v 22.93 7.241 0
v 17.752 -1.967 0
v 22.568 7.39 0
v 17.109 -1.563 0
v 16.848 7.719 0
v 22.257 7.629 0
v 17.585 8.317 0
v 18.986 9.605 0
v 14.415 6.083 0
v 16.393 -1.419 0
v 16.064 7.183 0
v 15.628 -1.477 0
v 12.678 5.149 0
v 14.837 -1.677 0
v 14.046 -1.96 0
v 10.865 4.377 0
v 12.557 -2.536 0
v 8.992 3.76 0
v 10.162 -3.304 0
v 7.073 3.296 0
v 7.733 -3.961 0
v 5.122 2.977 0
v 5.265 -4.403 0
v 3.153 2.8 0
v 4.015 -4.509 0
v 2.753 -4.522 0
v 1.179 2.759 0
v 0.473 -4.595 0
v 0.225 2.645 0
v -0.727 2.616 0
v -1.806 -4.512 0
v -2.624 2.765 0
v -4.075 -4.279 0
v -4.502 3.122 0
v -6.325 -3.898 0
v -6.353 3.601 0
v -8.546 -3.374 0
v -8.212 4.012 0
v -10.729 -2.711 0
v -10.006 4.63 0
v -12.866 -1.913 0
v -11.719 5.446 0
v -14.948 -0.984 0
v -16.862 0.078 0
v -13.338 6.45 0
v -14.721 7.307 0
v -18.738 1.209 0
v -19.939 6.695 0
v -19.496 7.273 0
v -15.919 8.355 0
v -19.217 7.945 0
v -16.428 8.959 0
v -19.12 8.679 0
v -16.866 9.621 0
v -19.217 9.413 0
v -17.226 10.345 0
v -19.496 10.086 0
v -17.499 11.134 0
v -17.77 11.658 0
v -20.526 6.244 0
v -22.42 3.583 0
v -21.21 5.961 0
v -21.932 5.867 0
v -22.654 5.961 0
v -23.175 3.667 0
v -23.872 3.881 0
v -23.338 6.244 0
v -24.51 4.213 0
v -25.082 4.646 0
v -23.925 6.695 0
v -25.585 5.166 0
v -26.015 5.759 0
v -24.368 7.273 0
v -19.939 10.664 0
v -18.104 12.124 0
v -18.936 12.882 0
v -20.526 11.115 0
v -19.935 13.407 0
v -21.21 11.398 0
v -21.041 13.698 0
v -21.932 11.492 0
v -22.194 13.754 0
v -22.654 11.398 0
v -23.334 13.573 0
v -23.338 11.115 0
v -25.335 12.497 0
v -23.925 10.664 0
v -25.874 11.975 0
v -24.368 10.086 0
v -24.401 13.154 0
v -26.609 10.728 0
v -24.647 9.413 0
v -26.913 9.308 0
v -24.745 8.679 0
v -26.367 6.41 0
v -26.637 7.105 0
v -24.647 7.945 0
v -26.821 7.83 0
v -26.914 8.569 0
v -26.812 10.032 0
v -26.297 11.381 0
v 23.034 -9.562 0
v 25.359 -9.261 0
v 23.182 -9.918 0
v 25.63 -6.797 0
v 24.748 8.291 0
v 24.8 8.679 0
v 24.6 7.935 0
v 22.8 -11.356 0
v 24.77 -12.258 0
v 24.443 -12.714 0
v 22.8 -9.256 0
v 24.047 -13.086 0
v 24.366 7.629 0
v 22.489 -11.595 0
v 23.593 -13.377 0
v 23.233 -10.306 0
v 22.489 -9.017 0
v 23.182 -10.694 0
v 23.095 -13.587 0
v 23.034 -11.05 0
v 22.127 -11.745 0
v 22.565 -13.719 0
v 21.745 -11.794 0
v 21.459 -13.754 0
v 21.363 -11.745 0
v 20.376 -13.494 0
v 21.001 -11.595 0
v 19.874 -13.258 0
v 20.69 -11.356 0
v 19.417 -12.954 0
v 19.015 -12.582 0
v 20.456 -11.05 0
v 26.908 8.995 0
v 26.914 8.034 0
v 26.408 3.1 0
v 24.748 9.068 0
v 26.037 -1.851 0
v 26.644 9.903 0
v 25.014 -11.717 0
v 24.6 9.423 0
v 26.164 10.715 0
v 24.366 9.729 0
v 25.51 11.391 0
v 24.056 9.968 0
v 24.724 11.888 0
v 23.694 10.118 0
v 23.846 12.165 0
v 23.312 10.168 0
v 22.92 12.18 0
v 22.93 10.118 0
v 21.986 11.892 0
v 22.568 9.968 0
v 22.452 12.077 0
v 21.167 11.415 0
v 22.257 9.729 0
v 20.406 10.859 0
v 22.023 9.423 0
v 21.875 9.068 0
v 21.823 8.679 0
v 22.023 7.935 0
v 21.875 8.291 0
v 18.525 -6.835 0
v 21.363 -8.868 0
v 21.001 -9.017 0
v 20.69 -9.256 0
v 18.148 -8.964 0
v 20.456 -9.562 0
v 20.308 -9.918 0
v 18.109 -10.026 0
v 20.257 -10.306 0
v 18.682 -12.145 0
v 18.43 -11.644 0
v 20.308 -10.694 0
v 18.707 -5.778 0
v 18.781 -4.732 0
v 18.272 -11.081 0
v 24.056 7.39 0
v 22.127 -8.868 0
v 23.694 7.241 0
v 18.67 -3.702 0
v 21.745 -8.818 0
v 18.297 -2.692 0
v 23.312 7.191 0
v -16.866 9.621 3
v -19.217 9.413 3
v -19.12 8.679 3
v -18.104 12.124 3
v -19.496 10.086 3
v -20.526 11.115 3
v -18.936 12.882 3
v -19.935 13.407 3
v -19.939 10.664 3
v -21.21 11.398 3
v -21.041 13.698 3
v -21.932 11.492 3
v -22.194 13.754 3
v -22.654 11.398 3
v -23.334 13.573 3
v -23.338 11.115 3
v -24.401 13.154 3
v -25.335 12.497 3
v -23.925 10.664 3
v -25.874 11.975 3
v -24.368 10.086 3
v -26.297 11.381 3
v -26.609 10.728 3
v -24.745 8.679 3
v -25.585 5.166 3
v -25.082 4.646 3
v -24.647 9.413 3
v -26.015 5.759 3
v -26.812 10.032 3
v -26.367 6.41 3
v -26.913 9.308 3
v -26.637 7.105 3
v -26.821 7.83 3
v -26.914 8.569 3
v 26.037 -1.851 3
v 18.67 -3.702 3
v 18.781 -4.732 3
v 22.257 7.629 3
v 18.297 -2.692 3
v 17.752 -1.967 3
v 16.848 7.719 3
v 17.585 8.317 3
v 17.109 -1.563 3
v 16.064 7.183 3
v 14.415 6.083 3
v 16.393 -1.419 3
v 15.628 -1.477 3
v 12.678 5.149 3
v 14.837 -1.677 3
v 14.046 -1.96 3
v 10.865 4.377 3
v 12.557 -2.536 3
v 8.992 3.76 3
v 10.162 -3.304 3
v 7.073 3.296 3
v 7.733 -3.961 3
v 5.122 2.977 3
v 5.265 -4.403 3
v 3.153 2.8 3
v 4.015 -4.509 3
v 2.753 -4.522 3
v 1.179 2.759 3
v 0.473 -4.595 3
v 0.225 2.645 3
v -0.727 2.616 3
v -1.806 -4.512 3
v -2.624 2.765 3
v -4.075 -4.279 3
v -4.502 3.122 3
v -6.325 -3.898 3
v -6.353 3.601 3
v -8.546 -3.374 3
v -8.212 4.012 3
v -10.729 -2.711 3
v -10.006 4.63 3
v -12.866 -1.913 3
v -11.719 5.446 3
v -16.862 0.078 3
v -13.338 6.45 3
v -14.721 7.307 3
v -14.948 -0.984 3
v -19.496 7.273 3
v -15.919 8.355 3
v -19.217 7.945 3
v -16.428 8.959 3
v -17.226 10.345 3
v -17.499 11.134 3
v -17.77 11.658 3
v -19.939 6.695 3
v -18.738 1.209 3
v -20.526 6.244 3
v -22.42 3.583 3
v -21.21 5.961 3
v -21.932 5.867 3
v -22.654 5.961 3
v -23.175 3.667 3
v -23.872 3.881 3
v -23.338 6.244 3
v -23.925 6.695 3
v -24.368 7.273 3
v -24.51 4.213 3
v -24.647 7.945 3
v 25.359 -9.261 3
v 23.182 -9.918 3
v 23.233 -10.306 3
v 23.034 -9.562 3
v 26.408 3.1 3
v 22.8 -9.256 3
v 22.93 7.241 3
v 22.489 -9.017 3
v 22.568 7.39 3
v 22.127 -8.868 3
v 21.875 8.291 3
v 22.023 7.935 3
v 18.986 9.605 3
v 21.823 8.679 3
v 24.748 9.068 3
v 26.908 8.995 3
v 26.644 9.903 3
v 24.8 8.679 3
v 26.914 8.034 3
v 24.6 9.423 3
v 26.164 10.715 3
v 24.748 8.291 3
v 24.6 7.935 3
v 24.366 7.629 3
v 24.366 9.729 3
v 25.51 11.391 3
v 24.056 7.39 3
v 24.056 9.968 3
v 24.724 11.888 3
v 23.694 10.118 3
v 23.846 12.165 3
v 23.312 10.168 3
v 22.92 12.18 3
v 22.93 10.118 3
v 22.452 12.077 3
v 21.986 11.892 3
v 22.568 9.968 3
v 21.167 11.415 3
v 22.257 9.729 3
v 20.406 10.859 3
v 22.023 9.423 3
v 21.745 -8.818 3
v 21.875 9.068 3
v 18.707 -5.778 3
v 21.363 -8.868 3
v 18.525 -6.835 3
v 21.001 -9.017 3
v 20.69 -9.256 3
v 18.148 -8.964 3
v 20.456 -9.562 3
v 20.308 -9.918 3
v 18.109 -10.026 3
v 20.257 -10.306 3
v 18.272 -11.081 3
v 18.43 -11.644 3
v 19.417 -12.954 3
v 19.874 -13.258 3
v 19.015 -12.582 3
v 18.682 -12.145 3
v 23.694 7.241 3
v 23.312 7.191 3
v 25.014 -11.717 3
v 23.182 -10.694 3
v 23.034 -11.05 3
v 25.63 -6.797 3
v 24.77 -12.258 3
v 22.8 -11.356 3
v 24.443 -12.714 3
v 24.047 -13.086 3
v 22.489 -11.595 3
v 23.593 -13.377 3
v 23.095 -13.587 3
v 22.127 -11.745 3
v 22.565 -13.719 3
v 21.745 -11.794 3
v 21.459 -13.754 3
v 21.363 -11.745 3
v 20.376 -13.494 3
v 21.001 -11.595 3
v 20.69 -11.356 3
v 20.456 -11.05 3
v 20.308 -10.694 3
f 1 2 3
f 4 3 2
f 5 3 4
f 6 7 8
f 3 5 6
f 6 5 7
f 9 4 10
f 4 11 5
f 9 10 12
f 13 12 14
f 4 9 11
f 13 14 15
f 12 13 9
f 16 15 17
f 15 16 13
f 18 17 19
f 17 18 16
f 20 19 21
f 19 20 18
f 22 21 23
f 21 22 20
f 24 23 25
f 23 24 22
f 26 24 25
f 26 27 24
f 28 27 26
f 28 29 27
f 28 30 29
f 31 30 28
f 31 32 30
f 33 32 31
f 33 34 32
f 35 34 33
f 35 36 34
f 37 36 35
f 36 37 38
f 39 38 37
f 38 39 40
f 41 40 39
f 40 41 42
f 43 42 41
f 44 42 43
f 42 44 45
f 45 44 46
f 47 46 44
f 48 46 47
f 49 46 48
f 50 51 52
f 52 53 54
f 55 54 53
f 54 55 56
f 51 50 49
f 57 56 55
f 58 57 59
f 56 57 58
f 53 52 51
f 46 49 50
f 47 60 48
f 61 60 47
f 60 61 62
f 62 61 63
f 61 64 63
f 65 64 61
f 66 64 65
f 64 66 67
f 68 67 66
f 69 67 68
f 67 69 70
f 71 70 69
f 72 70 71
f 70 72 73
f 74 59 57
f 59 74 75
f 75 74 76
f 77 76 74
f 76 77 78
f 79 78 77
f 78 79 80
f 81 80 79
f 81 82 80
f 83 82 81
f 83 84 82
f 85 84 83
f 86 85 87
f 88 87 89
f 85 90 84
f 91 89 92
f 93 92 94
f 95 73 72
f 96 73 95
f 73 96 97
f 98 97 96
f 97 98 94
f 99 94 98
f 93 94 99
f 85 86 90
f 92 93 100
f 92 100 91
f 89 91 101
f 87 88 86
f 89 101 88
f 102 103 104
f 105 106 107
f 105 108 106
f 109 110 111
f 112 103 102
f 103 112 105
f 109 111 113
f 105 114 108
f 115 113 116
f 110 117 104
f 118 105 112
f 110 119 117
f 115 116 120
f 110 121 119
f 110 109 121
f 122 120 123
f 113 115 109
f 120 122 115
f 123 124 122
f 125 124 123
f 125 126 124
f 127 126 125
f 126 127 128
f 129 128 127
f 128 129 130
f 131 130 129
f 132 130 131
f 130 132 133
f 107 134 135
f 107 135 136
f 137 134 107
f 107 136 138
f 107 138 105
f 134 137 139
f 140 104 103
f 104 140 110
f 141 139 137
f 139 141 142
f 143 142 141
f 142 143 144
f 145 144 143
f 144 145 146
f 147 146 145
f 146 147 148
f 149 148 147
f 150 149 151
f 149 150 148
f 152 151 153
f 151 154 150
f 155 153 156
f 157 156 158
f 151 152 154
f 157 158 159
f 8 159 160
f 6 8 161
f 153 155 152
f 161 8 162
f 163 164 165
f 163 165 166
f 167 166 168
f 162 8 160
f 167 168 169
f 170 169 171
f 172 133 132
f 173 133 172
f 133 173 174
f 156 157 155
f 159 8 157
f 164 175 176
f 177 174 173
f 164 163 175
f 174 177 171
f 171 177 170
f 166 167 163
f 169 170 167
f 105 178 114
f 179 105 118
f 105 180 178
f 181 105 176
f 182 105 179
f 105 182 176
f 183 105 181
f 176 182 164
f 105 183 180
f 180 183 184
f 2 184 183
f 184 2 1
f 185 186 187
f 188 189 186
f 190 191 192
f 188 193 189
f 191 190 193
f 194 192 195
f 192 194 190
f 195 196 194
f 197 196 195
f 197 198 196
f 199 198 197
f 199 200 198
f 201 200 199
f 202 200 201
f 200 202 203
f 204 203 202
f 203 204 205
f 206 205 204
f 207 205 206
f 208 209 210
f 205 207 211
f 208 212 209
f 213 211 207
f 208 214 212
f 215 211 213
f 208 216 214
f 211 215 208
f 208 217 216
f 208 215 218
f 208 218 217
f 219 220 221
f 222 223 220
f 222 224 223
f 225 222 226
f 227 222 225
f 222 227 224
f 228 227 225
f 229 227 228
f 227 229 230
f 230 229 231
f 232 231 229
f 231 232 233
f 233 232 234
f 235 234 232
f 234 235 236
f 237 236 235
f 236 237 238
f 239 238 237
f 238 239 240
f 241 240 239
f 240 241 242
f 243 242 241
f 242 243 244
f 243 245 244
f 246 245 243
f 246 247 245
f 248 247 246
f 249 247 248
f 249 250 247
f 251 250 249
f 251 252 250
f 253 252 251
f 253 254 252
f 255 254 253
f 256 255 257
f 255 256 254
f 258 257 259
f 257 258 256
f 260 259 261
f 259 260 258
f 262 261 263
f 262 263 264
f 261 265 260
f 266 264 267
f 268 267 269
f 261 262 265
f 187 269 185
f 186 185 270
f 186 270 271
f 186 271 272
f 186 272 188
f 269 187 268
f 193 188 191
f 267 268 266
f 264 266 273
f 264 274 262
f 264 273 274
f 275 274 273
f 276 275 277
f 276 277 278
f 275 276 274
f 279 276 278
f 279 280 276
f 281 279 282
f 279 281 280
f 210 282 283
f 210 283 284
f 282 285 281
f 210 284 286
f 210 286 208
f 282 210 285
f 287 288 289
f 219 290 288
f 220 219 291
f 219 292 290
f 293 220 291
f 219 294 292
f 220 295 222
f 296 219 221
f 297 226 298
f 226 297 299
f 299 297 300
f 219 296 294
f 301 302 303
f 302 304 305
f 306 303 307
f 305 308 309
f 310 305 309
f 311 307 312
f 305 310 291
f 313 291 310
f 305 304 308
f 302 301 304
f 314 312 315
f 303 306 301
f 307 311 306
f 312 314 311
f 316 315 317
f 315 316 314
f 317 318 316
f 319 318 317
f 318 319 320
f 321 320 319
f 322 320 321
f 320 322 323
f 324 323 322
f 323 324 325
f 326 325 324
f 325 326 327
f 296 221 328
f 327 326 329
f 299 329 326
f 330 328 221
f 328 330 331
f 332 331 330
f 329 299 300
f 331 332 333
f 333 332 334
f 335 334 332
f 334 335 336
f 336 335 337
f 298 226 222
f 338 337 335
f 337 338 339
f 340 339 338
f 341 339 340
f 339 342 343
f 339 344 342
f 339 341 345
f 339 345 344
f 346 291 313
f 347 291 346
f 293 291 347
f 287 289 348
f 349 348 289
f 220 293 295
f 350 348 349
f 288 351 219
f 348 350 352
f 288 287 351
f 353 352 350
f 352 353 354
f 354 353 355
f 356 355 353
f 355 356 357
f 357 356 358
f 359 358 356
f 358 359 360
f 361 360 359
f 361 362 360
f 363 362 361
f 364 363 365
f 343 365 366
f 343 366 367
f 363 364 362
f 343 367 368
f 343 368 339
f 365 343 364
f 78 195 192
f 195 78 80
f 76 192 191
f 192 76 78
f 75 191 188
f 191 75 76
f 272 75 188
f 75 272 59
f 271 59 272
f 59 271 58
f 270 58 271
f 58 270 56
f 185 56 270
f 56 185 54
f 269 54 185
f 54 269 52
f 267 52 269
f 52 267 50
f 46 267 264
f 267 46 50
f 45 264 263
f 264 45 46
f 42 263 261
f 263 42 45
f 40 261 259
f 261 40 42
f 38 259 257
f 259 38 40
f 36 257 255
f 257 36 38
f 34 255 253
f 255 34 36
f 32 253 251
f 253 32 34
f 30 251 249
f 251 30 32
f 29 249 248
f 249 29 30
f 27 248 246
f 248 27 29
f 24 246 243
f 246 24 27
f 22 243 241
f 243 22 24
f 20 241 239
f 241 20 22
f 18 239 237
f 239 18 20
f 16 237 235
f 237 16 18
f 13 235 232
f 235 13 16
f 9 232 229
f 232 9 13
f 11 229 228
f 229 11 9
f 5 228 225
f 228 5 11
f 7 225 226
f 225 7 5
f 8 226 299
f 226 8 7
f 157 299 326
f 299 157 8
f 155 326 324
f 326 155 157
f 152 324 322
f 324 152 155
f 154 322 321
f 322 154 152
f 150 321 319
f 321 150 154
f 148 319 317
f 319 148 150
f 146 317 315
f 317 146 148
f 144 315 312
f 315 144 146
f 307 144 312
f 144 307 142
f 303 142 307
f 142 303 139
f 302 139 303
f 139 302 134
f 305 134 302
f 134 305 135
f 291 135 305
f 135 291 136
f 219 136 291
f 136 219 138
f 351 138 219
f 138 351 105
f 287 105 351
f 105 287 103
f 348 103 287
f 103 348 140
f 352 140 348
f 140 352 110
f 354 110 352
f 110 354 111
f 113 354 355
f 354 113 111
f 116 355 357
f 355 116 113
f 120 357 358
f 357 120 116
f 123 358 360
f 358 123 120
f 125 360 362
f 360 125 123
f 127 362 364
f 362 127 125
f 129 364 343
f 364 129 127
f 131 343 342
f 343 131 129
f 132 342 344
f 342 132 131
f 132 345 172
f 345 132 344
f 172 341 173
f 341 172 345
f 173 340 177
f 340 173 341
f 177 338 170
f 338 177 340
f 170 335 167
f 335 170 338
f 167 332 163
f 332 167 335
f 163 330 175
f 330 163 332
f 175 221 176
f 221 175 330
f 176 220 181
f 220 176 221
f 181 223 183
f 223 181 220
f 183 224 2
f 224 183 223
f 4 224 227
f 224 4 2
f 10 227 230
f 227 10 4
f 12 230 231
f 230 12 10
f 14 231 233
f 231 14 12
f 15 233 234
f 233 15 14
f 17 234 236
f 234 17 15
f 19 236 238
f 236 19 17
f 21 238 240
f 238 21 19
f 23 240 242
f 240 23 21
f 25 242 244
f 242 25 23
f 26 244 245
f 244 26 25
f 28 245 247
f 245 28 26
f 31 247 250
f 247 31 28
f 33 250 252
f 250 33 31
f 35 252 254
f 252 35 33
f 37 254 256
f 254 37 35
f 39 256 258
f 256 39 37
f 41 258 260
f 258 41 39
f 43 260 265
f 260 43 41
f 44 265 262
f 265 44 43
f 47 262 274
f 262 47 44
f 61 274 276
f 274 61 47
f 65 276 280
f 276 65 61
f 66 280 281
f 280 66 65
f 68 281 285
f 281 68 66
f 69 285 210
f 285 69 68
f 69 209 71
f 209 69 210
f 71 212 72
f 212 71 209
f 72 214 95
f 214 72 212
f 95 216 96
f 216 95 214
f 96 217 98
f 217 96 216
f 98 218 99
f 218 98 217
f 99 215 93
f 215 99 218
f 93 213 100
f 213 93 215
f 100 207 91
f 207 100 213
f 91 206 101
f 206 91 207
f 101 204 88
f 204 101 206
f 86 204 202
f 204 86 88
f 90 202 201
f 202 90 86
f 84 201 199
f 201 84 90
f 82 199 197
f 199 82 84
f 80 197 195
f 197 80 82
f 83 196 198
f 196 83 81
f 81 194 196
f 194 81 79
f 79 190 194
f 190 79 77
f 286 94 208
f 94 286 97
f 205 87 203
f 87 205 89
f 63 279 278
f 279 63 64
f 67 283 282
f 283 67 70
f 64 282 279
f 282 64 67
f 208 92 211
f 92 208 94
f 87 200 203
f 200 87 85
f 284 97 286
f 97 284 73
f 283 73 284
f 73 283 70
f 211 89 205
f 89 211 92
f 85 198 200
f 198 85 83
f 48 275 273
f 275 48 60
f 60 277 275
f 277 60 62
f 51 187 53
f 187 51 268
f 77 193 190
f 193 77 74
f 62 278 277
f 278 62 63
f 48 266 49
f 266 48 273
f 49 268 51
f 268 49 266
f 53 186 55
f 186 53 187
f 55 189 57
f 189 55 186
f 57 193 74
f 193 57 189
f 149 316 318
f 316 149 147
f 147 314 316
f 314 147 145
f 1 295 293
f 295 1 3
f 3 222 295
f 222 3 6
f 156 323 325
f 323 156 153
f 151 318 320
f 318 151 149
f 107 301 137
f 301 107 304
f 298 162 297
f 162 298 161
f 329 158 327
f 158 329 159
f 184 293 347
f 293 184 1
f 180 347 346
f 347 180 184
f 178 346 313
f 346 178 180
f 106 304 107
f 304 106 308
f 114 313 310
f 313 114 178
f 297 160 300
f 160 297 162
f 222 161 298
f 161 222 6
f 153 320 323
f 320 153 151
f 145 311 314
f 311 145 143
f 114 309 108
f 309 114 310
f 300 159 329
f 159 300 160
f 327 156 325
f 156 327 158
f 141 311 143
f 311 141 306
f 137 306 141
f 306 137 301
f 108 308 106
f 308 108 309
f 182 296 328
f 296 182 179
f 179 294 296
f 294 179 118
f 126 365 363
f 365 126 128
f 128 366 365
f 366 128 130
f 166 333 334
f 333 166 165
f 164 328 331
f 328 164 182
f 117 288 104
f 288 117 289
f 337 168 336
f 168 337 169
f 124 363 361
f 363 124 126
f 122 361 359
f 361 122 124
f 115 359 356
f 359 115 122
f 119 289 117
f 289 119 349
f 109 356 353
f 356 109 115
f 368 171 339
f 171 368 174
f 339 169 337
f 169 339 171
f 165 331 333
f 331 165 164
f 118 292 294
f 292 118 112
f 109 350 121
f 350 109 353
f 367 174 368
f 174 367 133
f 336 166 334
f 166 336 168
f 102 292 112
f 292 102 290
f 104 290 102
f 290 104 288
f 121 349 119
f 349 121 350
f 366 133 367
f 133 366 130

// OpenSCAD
// Module names are of the form poly_<inkscape-path-id>().  As a result,
// you can associate a polygon in this OpenSCAD program with the corresponding
// SVG element in the Inkscape document by looking for the XML element with
// the attribute id="inkscape-path-id".

// fudge value is used to ensure that subtracted solids are a tad taller
// in the z dimension than the polygon being subtracted from.  This helps
// keep the resulting .stl file manifold.
fudge = 0.1;

module poly_path1813(h)
{
  scale([25.4/96, -25.4/96, 1]) union()
  {
    difference()
    {
       linear_extrude(height=h)
         polygon([[-84.738354,-13.541628],[-87.588929,-13.858369],[-90.226533,-14.669929],[-92.635027,-15.921387],[-94.798273,-17.557822],[-96.700131,-19.524312],[-98.324463,-21.765935],[-99.655131,-24.227770],[-100.675996,-26.854895],[-101.370918,-29.592389],[-101.723761,-32.385329],[-101.718384,-35.178795],[-101.338649,-37.917864],[-100.568418,-40.547615],[-99.391552,-43.013127],[-97.791912,-45.259477],[-95.753359,-47.231745],[-92.224351,-49.717150],[-88.192327,-51.299526],[-83.884117,-51.983327],[-79.526554,-51.773002],[-75.346468,-50.673005],[-71.570691,-48.687787],[-68.426054,-45.821799],[-67.161298,-44.059908],[-66.139388,-42.079493],[-65.105900,-39.099626],[-63.745516,-36.364374],[-62.088466,-33.861033],[-60.164981,-31.576901],[-55.639627,-27.615453],[-50.411297,-24.378407],[-44.292370,-20.582807],[-37.816839,-17.498581],[-31.038633,-15.162595],[-24.011686,-13.611714],[-17.016957,-11.798311],[-9.917983,-10.449614],[-2.748777,-9.885884],[0.851533,-9.998462],[4.456646,-10.427380],[11.915391,-10.582050],[19.359019,-11.251874],[26.734153,-12.455776],[33.987420,-14.212677],[41.065443,-16.541501],[47.914848,-19.461172],[54.482261,-22.990611],[60.714305,-27.148742],[63.679510,-29.175061],[66.463948,-31.435465],[71.756539,-36.303642],[77.124105,-41.043495],[80.002262,-43.143496],[83.098672,-44.945249],[84.856550,-45.644036],[86.627161,-46.036176],[90.127805,-45.979335],[93.443048,-44.932366],[96.415334,-43.052911],[98.887104,-40.498608],[100.700803,-37.427098],[101.698874,-33.996021],[101.723761,-30.363017],[99.808798,-11.715922],[98.408314,6.994866],[96.869837,25.688593],[95.844956,35.003823],[94.540900,44.284505],[93.618076,46.329117],[92.383894,48.052082],[90.885936,49.459614],[89.171783,50.557928],[87.289018,51.353241],[85.285224,51.851768],[81.104874,51.983327],[77.011390,51.002330],[75.116179,50.110162],[73.385431,48.958502],[71.866729,47.553566],[70.607654,45.901570],[69.655788,44.008728],[69.058715,41.881257],[68.442133,37.895533],[68.591448,33.880440],[70.015066,25.833659],[70.703019,21.837726],[70.984169,17.883936],[70.565340,13.990165],[69.153357,10.174293],[67.093236,7.435940],[64.664457,5.907510],[61.958233,5.364715],[59.065778,5.583265],[56.078306,6.338873],[53.087031,7.407248],[47.457929,9.585147],[38.407645,12.486816],[29.226503,14.972015],[19.897955,16.639925],[15.173233,17.042142],[10.405454,17.089730],[1.786559,17.365876],[-6.827400,17.054684],[-15.402287,16.171584],[-23.903966,14.732009],[-32.298300,12.751389],[-40.551154,10.245155],[-48.628392,7.228739],[-56.495878,3.717572],[-63.729304,-0.295727],[-70.822542,-4.568203],[-84.738372,-13.541628]]);
       translate([0, 0, -fudge])
         linear_extrude(height=h+2*fudge)
           polygon([[-72.263200,-32.803470],[-72.630740,-35.577391],[-73.686692,-38.119251],[-75.359499,-40.305070],[-77.577600,-42.010869],[-80.163786,-43.079216],[-82.893121,-43.435332],[-85.622456,-43.079216],[-88.208642,-42.010869],[-90.426743,-40.305070],[-92.099550,-38.119251],[-93.155503,-35.577391],[-93.523042,-32.803470],[-93.155083,-30.029936],[-92.098903,-27.488509],[-90.426053,-25.303118],[-88.208082,-23.597688],[-85.622151,-22.529584],[-82.893121,-22.173549],[-80.164092,-22.529584],[-77.578161,-23.597688],[-75.360190,-25.303118],[-73.687340,-27.488509],[-72.631160,-30.029936],[-72.263200,-32.803470],[-72.263200,-32.803470]]);
       translate([0, 0, -fudge])
         linear_extrude(height=h+2*fudge)
           polygon([[93.731871,-32.803470],[93.537159,-34.271132],[92.978264,-35.615970],[92.093047,-36.772406],[90.919371,-37.674863],[89.550982,-38.240068],[88.106871,-38.428470],[86.662759,-38.240068],[85.294371,-37.674863],[84.120695,-36.772406],[83.235478,-35.615970],[82.676583,-34.271132],[82.481871,-32.803470],[82.676583,-31.335808],[83.235478,-29.990970],[84.120695,-28.834534],[85.294371,-27.932077],[86.662759,-27.366872],[88.106871,-27.178470],[89.550982,-27.366872],[90.919371,-27.932077],[92.093047,-28.834534],[92.978264,-29.990970],[93.537159,-31.335808],[93.731871,-32.803470],[93.731871,-32.803470]]);
       translate([0, 0, -fudge])
         linear_extrude(height=h+2*fudge)
           polygon([[87.810828,38.952678],[87.616116,37.485016],[87.057220,36.140178],[86.172004,34.983742],[84.998328,34.081285],[83.629939,33.516080],[82.185828,33.327678],[80.741716,33.516080],[79.373328,34.081285],[78.199651,34.983742],[77.314435,36.140178],[76.755540,37.485016],[76.560828,38.952678],[76.755540,40.420340],[77.314435,41.765178],[78.199651,42.921614],[79.373328,43.824071],[80.741716,44.389276],[82.185828,44.577678],[83.629939,44.389276],[84.998328,43.824071],[86.172004,42.921614],[87.057220,41.765178],[87.616116,40.420340],[87.810828,38.952678],[87.810828,38.952678]]);
    }
  }
}

module inkscape(h)
{

poly_path1813(h);
}

inkscape(3);
